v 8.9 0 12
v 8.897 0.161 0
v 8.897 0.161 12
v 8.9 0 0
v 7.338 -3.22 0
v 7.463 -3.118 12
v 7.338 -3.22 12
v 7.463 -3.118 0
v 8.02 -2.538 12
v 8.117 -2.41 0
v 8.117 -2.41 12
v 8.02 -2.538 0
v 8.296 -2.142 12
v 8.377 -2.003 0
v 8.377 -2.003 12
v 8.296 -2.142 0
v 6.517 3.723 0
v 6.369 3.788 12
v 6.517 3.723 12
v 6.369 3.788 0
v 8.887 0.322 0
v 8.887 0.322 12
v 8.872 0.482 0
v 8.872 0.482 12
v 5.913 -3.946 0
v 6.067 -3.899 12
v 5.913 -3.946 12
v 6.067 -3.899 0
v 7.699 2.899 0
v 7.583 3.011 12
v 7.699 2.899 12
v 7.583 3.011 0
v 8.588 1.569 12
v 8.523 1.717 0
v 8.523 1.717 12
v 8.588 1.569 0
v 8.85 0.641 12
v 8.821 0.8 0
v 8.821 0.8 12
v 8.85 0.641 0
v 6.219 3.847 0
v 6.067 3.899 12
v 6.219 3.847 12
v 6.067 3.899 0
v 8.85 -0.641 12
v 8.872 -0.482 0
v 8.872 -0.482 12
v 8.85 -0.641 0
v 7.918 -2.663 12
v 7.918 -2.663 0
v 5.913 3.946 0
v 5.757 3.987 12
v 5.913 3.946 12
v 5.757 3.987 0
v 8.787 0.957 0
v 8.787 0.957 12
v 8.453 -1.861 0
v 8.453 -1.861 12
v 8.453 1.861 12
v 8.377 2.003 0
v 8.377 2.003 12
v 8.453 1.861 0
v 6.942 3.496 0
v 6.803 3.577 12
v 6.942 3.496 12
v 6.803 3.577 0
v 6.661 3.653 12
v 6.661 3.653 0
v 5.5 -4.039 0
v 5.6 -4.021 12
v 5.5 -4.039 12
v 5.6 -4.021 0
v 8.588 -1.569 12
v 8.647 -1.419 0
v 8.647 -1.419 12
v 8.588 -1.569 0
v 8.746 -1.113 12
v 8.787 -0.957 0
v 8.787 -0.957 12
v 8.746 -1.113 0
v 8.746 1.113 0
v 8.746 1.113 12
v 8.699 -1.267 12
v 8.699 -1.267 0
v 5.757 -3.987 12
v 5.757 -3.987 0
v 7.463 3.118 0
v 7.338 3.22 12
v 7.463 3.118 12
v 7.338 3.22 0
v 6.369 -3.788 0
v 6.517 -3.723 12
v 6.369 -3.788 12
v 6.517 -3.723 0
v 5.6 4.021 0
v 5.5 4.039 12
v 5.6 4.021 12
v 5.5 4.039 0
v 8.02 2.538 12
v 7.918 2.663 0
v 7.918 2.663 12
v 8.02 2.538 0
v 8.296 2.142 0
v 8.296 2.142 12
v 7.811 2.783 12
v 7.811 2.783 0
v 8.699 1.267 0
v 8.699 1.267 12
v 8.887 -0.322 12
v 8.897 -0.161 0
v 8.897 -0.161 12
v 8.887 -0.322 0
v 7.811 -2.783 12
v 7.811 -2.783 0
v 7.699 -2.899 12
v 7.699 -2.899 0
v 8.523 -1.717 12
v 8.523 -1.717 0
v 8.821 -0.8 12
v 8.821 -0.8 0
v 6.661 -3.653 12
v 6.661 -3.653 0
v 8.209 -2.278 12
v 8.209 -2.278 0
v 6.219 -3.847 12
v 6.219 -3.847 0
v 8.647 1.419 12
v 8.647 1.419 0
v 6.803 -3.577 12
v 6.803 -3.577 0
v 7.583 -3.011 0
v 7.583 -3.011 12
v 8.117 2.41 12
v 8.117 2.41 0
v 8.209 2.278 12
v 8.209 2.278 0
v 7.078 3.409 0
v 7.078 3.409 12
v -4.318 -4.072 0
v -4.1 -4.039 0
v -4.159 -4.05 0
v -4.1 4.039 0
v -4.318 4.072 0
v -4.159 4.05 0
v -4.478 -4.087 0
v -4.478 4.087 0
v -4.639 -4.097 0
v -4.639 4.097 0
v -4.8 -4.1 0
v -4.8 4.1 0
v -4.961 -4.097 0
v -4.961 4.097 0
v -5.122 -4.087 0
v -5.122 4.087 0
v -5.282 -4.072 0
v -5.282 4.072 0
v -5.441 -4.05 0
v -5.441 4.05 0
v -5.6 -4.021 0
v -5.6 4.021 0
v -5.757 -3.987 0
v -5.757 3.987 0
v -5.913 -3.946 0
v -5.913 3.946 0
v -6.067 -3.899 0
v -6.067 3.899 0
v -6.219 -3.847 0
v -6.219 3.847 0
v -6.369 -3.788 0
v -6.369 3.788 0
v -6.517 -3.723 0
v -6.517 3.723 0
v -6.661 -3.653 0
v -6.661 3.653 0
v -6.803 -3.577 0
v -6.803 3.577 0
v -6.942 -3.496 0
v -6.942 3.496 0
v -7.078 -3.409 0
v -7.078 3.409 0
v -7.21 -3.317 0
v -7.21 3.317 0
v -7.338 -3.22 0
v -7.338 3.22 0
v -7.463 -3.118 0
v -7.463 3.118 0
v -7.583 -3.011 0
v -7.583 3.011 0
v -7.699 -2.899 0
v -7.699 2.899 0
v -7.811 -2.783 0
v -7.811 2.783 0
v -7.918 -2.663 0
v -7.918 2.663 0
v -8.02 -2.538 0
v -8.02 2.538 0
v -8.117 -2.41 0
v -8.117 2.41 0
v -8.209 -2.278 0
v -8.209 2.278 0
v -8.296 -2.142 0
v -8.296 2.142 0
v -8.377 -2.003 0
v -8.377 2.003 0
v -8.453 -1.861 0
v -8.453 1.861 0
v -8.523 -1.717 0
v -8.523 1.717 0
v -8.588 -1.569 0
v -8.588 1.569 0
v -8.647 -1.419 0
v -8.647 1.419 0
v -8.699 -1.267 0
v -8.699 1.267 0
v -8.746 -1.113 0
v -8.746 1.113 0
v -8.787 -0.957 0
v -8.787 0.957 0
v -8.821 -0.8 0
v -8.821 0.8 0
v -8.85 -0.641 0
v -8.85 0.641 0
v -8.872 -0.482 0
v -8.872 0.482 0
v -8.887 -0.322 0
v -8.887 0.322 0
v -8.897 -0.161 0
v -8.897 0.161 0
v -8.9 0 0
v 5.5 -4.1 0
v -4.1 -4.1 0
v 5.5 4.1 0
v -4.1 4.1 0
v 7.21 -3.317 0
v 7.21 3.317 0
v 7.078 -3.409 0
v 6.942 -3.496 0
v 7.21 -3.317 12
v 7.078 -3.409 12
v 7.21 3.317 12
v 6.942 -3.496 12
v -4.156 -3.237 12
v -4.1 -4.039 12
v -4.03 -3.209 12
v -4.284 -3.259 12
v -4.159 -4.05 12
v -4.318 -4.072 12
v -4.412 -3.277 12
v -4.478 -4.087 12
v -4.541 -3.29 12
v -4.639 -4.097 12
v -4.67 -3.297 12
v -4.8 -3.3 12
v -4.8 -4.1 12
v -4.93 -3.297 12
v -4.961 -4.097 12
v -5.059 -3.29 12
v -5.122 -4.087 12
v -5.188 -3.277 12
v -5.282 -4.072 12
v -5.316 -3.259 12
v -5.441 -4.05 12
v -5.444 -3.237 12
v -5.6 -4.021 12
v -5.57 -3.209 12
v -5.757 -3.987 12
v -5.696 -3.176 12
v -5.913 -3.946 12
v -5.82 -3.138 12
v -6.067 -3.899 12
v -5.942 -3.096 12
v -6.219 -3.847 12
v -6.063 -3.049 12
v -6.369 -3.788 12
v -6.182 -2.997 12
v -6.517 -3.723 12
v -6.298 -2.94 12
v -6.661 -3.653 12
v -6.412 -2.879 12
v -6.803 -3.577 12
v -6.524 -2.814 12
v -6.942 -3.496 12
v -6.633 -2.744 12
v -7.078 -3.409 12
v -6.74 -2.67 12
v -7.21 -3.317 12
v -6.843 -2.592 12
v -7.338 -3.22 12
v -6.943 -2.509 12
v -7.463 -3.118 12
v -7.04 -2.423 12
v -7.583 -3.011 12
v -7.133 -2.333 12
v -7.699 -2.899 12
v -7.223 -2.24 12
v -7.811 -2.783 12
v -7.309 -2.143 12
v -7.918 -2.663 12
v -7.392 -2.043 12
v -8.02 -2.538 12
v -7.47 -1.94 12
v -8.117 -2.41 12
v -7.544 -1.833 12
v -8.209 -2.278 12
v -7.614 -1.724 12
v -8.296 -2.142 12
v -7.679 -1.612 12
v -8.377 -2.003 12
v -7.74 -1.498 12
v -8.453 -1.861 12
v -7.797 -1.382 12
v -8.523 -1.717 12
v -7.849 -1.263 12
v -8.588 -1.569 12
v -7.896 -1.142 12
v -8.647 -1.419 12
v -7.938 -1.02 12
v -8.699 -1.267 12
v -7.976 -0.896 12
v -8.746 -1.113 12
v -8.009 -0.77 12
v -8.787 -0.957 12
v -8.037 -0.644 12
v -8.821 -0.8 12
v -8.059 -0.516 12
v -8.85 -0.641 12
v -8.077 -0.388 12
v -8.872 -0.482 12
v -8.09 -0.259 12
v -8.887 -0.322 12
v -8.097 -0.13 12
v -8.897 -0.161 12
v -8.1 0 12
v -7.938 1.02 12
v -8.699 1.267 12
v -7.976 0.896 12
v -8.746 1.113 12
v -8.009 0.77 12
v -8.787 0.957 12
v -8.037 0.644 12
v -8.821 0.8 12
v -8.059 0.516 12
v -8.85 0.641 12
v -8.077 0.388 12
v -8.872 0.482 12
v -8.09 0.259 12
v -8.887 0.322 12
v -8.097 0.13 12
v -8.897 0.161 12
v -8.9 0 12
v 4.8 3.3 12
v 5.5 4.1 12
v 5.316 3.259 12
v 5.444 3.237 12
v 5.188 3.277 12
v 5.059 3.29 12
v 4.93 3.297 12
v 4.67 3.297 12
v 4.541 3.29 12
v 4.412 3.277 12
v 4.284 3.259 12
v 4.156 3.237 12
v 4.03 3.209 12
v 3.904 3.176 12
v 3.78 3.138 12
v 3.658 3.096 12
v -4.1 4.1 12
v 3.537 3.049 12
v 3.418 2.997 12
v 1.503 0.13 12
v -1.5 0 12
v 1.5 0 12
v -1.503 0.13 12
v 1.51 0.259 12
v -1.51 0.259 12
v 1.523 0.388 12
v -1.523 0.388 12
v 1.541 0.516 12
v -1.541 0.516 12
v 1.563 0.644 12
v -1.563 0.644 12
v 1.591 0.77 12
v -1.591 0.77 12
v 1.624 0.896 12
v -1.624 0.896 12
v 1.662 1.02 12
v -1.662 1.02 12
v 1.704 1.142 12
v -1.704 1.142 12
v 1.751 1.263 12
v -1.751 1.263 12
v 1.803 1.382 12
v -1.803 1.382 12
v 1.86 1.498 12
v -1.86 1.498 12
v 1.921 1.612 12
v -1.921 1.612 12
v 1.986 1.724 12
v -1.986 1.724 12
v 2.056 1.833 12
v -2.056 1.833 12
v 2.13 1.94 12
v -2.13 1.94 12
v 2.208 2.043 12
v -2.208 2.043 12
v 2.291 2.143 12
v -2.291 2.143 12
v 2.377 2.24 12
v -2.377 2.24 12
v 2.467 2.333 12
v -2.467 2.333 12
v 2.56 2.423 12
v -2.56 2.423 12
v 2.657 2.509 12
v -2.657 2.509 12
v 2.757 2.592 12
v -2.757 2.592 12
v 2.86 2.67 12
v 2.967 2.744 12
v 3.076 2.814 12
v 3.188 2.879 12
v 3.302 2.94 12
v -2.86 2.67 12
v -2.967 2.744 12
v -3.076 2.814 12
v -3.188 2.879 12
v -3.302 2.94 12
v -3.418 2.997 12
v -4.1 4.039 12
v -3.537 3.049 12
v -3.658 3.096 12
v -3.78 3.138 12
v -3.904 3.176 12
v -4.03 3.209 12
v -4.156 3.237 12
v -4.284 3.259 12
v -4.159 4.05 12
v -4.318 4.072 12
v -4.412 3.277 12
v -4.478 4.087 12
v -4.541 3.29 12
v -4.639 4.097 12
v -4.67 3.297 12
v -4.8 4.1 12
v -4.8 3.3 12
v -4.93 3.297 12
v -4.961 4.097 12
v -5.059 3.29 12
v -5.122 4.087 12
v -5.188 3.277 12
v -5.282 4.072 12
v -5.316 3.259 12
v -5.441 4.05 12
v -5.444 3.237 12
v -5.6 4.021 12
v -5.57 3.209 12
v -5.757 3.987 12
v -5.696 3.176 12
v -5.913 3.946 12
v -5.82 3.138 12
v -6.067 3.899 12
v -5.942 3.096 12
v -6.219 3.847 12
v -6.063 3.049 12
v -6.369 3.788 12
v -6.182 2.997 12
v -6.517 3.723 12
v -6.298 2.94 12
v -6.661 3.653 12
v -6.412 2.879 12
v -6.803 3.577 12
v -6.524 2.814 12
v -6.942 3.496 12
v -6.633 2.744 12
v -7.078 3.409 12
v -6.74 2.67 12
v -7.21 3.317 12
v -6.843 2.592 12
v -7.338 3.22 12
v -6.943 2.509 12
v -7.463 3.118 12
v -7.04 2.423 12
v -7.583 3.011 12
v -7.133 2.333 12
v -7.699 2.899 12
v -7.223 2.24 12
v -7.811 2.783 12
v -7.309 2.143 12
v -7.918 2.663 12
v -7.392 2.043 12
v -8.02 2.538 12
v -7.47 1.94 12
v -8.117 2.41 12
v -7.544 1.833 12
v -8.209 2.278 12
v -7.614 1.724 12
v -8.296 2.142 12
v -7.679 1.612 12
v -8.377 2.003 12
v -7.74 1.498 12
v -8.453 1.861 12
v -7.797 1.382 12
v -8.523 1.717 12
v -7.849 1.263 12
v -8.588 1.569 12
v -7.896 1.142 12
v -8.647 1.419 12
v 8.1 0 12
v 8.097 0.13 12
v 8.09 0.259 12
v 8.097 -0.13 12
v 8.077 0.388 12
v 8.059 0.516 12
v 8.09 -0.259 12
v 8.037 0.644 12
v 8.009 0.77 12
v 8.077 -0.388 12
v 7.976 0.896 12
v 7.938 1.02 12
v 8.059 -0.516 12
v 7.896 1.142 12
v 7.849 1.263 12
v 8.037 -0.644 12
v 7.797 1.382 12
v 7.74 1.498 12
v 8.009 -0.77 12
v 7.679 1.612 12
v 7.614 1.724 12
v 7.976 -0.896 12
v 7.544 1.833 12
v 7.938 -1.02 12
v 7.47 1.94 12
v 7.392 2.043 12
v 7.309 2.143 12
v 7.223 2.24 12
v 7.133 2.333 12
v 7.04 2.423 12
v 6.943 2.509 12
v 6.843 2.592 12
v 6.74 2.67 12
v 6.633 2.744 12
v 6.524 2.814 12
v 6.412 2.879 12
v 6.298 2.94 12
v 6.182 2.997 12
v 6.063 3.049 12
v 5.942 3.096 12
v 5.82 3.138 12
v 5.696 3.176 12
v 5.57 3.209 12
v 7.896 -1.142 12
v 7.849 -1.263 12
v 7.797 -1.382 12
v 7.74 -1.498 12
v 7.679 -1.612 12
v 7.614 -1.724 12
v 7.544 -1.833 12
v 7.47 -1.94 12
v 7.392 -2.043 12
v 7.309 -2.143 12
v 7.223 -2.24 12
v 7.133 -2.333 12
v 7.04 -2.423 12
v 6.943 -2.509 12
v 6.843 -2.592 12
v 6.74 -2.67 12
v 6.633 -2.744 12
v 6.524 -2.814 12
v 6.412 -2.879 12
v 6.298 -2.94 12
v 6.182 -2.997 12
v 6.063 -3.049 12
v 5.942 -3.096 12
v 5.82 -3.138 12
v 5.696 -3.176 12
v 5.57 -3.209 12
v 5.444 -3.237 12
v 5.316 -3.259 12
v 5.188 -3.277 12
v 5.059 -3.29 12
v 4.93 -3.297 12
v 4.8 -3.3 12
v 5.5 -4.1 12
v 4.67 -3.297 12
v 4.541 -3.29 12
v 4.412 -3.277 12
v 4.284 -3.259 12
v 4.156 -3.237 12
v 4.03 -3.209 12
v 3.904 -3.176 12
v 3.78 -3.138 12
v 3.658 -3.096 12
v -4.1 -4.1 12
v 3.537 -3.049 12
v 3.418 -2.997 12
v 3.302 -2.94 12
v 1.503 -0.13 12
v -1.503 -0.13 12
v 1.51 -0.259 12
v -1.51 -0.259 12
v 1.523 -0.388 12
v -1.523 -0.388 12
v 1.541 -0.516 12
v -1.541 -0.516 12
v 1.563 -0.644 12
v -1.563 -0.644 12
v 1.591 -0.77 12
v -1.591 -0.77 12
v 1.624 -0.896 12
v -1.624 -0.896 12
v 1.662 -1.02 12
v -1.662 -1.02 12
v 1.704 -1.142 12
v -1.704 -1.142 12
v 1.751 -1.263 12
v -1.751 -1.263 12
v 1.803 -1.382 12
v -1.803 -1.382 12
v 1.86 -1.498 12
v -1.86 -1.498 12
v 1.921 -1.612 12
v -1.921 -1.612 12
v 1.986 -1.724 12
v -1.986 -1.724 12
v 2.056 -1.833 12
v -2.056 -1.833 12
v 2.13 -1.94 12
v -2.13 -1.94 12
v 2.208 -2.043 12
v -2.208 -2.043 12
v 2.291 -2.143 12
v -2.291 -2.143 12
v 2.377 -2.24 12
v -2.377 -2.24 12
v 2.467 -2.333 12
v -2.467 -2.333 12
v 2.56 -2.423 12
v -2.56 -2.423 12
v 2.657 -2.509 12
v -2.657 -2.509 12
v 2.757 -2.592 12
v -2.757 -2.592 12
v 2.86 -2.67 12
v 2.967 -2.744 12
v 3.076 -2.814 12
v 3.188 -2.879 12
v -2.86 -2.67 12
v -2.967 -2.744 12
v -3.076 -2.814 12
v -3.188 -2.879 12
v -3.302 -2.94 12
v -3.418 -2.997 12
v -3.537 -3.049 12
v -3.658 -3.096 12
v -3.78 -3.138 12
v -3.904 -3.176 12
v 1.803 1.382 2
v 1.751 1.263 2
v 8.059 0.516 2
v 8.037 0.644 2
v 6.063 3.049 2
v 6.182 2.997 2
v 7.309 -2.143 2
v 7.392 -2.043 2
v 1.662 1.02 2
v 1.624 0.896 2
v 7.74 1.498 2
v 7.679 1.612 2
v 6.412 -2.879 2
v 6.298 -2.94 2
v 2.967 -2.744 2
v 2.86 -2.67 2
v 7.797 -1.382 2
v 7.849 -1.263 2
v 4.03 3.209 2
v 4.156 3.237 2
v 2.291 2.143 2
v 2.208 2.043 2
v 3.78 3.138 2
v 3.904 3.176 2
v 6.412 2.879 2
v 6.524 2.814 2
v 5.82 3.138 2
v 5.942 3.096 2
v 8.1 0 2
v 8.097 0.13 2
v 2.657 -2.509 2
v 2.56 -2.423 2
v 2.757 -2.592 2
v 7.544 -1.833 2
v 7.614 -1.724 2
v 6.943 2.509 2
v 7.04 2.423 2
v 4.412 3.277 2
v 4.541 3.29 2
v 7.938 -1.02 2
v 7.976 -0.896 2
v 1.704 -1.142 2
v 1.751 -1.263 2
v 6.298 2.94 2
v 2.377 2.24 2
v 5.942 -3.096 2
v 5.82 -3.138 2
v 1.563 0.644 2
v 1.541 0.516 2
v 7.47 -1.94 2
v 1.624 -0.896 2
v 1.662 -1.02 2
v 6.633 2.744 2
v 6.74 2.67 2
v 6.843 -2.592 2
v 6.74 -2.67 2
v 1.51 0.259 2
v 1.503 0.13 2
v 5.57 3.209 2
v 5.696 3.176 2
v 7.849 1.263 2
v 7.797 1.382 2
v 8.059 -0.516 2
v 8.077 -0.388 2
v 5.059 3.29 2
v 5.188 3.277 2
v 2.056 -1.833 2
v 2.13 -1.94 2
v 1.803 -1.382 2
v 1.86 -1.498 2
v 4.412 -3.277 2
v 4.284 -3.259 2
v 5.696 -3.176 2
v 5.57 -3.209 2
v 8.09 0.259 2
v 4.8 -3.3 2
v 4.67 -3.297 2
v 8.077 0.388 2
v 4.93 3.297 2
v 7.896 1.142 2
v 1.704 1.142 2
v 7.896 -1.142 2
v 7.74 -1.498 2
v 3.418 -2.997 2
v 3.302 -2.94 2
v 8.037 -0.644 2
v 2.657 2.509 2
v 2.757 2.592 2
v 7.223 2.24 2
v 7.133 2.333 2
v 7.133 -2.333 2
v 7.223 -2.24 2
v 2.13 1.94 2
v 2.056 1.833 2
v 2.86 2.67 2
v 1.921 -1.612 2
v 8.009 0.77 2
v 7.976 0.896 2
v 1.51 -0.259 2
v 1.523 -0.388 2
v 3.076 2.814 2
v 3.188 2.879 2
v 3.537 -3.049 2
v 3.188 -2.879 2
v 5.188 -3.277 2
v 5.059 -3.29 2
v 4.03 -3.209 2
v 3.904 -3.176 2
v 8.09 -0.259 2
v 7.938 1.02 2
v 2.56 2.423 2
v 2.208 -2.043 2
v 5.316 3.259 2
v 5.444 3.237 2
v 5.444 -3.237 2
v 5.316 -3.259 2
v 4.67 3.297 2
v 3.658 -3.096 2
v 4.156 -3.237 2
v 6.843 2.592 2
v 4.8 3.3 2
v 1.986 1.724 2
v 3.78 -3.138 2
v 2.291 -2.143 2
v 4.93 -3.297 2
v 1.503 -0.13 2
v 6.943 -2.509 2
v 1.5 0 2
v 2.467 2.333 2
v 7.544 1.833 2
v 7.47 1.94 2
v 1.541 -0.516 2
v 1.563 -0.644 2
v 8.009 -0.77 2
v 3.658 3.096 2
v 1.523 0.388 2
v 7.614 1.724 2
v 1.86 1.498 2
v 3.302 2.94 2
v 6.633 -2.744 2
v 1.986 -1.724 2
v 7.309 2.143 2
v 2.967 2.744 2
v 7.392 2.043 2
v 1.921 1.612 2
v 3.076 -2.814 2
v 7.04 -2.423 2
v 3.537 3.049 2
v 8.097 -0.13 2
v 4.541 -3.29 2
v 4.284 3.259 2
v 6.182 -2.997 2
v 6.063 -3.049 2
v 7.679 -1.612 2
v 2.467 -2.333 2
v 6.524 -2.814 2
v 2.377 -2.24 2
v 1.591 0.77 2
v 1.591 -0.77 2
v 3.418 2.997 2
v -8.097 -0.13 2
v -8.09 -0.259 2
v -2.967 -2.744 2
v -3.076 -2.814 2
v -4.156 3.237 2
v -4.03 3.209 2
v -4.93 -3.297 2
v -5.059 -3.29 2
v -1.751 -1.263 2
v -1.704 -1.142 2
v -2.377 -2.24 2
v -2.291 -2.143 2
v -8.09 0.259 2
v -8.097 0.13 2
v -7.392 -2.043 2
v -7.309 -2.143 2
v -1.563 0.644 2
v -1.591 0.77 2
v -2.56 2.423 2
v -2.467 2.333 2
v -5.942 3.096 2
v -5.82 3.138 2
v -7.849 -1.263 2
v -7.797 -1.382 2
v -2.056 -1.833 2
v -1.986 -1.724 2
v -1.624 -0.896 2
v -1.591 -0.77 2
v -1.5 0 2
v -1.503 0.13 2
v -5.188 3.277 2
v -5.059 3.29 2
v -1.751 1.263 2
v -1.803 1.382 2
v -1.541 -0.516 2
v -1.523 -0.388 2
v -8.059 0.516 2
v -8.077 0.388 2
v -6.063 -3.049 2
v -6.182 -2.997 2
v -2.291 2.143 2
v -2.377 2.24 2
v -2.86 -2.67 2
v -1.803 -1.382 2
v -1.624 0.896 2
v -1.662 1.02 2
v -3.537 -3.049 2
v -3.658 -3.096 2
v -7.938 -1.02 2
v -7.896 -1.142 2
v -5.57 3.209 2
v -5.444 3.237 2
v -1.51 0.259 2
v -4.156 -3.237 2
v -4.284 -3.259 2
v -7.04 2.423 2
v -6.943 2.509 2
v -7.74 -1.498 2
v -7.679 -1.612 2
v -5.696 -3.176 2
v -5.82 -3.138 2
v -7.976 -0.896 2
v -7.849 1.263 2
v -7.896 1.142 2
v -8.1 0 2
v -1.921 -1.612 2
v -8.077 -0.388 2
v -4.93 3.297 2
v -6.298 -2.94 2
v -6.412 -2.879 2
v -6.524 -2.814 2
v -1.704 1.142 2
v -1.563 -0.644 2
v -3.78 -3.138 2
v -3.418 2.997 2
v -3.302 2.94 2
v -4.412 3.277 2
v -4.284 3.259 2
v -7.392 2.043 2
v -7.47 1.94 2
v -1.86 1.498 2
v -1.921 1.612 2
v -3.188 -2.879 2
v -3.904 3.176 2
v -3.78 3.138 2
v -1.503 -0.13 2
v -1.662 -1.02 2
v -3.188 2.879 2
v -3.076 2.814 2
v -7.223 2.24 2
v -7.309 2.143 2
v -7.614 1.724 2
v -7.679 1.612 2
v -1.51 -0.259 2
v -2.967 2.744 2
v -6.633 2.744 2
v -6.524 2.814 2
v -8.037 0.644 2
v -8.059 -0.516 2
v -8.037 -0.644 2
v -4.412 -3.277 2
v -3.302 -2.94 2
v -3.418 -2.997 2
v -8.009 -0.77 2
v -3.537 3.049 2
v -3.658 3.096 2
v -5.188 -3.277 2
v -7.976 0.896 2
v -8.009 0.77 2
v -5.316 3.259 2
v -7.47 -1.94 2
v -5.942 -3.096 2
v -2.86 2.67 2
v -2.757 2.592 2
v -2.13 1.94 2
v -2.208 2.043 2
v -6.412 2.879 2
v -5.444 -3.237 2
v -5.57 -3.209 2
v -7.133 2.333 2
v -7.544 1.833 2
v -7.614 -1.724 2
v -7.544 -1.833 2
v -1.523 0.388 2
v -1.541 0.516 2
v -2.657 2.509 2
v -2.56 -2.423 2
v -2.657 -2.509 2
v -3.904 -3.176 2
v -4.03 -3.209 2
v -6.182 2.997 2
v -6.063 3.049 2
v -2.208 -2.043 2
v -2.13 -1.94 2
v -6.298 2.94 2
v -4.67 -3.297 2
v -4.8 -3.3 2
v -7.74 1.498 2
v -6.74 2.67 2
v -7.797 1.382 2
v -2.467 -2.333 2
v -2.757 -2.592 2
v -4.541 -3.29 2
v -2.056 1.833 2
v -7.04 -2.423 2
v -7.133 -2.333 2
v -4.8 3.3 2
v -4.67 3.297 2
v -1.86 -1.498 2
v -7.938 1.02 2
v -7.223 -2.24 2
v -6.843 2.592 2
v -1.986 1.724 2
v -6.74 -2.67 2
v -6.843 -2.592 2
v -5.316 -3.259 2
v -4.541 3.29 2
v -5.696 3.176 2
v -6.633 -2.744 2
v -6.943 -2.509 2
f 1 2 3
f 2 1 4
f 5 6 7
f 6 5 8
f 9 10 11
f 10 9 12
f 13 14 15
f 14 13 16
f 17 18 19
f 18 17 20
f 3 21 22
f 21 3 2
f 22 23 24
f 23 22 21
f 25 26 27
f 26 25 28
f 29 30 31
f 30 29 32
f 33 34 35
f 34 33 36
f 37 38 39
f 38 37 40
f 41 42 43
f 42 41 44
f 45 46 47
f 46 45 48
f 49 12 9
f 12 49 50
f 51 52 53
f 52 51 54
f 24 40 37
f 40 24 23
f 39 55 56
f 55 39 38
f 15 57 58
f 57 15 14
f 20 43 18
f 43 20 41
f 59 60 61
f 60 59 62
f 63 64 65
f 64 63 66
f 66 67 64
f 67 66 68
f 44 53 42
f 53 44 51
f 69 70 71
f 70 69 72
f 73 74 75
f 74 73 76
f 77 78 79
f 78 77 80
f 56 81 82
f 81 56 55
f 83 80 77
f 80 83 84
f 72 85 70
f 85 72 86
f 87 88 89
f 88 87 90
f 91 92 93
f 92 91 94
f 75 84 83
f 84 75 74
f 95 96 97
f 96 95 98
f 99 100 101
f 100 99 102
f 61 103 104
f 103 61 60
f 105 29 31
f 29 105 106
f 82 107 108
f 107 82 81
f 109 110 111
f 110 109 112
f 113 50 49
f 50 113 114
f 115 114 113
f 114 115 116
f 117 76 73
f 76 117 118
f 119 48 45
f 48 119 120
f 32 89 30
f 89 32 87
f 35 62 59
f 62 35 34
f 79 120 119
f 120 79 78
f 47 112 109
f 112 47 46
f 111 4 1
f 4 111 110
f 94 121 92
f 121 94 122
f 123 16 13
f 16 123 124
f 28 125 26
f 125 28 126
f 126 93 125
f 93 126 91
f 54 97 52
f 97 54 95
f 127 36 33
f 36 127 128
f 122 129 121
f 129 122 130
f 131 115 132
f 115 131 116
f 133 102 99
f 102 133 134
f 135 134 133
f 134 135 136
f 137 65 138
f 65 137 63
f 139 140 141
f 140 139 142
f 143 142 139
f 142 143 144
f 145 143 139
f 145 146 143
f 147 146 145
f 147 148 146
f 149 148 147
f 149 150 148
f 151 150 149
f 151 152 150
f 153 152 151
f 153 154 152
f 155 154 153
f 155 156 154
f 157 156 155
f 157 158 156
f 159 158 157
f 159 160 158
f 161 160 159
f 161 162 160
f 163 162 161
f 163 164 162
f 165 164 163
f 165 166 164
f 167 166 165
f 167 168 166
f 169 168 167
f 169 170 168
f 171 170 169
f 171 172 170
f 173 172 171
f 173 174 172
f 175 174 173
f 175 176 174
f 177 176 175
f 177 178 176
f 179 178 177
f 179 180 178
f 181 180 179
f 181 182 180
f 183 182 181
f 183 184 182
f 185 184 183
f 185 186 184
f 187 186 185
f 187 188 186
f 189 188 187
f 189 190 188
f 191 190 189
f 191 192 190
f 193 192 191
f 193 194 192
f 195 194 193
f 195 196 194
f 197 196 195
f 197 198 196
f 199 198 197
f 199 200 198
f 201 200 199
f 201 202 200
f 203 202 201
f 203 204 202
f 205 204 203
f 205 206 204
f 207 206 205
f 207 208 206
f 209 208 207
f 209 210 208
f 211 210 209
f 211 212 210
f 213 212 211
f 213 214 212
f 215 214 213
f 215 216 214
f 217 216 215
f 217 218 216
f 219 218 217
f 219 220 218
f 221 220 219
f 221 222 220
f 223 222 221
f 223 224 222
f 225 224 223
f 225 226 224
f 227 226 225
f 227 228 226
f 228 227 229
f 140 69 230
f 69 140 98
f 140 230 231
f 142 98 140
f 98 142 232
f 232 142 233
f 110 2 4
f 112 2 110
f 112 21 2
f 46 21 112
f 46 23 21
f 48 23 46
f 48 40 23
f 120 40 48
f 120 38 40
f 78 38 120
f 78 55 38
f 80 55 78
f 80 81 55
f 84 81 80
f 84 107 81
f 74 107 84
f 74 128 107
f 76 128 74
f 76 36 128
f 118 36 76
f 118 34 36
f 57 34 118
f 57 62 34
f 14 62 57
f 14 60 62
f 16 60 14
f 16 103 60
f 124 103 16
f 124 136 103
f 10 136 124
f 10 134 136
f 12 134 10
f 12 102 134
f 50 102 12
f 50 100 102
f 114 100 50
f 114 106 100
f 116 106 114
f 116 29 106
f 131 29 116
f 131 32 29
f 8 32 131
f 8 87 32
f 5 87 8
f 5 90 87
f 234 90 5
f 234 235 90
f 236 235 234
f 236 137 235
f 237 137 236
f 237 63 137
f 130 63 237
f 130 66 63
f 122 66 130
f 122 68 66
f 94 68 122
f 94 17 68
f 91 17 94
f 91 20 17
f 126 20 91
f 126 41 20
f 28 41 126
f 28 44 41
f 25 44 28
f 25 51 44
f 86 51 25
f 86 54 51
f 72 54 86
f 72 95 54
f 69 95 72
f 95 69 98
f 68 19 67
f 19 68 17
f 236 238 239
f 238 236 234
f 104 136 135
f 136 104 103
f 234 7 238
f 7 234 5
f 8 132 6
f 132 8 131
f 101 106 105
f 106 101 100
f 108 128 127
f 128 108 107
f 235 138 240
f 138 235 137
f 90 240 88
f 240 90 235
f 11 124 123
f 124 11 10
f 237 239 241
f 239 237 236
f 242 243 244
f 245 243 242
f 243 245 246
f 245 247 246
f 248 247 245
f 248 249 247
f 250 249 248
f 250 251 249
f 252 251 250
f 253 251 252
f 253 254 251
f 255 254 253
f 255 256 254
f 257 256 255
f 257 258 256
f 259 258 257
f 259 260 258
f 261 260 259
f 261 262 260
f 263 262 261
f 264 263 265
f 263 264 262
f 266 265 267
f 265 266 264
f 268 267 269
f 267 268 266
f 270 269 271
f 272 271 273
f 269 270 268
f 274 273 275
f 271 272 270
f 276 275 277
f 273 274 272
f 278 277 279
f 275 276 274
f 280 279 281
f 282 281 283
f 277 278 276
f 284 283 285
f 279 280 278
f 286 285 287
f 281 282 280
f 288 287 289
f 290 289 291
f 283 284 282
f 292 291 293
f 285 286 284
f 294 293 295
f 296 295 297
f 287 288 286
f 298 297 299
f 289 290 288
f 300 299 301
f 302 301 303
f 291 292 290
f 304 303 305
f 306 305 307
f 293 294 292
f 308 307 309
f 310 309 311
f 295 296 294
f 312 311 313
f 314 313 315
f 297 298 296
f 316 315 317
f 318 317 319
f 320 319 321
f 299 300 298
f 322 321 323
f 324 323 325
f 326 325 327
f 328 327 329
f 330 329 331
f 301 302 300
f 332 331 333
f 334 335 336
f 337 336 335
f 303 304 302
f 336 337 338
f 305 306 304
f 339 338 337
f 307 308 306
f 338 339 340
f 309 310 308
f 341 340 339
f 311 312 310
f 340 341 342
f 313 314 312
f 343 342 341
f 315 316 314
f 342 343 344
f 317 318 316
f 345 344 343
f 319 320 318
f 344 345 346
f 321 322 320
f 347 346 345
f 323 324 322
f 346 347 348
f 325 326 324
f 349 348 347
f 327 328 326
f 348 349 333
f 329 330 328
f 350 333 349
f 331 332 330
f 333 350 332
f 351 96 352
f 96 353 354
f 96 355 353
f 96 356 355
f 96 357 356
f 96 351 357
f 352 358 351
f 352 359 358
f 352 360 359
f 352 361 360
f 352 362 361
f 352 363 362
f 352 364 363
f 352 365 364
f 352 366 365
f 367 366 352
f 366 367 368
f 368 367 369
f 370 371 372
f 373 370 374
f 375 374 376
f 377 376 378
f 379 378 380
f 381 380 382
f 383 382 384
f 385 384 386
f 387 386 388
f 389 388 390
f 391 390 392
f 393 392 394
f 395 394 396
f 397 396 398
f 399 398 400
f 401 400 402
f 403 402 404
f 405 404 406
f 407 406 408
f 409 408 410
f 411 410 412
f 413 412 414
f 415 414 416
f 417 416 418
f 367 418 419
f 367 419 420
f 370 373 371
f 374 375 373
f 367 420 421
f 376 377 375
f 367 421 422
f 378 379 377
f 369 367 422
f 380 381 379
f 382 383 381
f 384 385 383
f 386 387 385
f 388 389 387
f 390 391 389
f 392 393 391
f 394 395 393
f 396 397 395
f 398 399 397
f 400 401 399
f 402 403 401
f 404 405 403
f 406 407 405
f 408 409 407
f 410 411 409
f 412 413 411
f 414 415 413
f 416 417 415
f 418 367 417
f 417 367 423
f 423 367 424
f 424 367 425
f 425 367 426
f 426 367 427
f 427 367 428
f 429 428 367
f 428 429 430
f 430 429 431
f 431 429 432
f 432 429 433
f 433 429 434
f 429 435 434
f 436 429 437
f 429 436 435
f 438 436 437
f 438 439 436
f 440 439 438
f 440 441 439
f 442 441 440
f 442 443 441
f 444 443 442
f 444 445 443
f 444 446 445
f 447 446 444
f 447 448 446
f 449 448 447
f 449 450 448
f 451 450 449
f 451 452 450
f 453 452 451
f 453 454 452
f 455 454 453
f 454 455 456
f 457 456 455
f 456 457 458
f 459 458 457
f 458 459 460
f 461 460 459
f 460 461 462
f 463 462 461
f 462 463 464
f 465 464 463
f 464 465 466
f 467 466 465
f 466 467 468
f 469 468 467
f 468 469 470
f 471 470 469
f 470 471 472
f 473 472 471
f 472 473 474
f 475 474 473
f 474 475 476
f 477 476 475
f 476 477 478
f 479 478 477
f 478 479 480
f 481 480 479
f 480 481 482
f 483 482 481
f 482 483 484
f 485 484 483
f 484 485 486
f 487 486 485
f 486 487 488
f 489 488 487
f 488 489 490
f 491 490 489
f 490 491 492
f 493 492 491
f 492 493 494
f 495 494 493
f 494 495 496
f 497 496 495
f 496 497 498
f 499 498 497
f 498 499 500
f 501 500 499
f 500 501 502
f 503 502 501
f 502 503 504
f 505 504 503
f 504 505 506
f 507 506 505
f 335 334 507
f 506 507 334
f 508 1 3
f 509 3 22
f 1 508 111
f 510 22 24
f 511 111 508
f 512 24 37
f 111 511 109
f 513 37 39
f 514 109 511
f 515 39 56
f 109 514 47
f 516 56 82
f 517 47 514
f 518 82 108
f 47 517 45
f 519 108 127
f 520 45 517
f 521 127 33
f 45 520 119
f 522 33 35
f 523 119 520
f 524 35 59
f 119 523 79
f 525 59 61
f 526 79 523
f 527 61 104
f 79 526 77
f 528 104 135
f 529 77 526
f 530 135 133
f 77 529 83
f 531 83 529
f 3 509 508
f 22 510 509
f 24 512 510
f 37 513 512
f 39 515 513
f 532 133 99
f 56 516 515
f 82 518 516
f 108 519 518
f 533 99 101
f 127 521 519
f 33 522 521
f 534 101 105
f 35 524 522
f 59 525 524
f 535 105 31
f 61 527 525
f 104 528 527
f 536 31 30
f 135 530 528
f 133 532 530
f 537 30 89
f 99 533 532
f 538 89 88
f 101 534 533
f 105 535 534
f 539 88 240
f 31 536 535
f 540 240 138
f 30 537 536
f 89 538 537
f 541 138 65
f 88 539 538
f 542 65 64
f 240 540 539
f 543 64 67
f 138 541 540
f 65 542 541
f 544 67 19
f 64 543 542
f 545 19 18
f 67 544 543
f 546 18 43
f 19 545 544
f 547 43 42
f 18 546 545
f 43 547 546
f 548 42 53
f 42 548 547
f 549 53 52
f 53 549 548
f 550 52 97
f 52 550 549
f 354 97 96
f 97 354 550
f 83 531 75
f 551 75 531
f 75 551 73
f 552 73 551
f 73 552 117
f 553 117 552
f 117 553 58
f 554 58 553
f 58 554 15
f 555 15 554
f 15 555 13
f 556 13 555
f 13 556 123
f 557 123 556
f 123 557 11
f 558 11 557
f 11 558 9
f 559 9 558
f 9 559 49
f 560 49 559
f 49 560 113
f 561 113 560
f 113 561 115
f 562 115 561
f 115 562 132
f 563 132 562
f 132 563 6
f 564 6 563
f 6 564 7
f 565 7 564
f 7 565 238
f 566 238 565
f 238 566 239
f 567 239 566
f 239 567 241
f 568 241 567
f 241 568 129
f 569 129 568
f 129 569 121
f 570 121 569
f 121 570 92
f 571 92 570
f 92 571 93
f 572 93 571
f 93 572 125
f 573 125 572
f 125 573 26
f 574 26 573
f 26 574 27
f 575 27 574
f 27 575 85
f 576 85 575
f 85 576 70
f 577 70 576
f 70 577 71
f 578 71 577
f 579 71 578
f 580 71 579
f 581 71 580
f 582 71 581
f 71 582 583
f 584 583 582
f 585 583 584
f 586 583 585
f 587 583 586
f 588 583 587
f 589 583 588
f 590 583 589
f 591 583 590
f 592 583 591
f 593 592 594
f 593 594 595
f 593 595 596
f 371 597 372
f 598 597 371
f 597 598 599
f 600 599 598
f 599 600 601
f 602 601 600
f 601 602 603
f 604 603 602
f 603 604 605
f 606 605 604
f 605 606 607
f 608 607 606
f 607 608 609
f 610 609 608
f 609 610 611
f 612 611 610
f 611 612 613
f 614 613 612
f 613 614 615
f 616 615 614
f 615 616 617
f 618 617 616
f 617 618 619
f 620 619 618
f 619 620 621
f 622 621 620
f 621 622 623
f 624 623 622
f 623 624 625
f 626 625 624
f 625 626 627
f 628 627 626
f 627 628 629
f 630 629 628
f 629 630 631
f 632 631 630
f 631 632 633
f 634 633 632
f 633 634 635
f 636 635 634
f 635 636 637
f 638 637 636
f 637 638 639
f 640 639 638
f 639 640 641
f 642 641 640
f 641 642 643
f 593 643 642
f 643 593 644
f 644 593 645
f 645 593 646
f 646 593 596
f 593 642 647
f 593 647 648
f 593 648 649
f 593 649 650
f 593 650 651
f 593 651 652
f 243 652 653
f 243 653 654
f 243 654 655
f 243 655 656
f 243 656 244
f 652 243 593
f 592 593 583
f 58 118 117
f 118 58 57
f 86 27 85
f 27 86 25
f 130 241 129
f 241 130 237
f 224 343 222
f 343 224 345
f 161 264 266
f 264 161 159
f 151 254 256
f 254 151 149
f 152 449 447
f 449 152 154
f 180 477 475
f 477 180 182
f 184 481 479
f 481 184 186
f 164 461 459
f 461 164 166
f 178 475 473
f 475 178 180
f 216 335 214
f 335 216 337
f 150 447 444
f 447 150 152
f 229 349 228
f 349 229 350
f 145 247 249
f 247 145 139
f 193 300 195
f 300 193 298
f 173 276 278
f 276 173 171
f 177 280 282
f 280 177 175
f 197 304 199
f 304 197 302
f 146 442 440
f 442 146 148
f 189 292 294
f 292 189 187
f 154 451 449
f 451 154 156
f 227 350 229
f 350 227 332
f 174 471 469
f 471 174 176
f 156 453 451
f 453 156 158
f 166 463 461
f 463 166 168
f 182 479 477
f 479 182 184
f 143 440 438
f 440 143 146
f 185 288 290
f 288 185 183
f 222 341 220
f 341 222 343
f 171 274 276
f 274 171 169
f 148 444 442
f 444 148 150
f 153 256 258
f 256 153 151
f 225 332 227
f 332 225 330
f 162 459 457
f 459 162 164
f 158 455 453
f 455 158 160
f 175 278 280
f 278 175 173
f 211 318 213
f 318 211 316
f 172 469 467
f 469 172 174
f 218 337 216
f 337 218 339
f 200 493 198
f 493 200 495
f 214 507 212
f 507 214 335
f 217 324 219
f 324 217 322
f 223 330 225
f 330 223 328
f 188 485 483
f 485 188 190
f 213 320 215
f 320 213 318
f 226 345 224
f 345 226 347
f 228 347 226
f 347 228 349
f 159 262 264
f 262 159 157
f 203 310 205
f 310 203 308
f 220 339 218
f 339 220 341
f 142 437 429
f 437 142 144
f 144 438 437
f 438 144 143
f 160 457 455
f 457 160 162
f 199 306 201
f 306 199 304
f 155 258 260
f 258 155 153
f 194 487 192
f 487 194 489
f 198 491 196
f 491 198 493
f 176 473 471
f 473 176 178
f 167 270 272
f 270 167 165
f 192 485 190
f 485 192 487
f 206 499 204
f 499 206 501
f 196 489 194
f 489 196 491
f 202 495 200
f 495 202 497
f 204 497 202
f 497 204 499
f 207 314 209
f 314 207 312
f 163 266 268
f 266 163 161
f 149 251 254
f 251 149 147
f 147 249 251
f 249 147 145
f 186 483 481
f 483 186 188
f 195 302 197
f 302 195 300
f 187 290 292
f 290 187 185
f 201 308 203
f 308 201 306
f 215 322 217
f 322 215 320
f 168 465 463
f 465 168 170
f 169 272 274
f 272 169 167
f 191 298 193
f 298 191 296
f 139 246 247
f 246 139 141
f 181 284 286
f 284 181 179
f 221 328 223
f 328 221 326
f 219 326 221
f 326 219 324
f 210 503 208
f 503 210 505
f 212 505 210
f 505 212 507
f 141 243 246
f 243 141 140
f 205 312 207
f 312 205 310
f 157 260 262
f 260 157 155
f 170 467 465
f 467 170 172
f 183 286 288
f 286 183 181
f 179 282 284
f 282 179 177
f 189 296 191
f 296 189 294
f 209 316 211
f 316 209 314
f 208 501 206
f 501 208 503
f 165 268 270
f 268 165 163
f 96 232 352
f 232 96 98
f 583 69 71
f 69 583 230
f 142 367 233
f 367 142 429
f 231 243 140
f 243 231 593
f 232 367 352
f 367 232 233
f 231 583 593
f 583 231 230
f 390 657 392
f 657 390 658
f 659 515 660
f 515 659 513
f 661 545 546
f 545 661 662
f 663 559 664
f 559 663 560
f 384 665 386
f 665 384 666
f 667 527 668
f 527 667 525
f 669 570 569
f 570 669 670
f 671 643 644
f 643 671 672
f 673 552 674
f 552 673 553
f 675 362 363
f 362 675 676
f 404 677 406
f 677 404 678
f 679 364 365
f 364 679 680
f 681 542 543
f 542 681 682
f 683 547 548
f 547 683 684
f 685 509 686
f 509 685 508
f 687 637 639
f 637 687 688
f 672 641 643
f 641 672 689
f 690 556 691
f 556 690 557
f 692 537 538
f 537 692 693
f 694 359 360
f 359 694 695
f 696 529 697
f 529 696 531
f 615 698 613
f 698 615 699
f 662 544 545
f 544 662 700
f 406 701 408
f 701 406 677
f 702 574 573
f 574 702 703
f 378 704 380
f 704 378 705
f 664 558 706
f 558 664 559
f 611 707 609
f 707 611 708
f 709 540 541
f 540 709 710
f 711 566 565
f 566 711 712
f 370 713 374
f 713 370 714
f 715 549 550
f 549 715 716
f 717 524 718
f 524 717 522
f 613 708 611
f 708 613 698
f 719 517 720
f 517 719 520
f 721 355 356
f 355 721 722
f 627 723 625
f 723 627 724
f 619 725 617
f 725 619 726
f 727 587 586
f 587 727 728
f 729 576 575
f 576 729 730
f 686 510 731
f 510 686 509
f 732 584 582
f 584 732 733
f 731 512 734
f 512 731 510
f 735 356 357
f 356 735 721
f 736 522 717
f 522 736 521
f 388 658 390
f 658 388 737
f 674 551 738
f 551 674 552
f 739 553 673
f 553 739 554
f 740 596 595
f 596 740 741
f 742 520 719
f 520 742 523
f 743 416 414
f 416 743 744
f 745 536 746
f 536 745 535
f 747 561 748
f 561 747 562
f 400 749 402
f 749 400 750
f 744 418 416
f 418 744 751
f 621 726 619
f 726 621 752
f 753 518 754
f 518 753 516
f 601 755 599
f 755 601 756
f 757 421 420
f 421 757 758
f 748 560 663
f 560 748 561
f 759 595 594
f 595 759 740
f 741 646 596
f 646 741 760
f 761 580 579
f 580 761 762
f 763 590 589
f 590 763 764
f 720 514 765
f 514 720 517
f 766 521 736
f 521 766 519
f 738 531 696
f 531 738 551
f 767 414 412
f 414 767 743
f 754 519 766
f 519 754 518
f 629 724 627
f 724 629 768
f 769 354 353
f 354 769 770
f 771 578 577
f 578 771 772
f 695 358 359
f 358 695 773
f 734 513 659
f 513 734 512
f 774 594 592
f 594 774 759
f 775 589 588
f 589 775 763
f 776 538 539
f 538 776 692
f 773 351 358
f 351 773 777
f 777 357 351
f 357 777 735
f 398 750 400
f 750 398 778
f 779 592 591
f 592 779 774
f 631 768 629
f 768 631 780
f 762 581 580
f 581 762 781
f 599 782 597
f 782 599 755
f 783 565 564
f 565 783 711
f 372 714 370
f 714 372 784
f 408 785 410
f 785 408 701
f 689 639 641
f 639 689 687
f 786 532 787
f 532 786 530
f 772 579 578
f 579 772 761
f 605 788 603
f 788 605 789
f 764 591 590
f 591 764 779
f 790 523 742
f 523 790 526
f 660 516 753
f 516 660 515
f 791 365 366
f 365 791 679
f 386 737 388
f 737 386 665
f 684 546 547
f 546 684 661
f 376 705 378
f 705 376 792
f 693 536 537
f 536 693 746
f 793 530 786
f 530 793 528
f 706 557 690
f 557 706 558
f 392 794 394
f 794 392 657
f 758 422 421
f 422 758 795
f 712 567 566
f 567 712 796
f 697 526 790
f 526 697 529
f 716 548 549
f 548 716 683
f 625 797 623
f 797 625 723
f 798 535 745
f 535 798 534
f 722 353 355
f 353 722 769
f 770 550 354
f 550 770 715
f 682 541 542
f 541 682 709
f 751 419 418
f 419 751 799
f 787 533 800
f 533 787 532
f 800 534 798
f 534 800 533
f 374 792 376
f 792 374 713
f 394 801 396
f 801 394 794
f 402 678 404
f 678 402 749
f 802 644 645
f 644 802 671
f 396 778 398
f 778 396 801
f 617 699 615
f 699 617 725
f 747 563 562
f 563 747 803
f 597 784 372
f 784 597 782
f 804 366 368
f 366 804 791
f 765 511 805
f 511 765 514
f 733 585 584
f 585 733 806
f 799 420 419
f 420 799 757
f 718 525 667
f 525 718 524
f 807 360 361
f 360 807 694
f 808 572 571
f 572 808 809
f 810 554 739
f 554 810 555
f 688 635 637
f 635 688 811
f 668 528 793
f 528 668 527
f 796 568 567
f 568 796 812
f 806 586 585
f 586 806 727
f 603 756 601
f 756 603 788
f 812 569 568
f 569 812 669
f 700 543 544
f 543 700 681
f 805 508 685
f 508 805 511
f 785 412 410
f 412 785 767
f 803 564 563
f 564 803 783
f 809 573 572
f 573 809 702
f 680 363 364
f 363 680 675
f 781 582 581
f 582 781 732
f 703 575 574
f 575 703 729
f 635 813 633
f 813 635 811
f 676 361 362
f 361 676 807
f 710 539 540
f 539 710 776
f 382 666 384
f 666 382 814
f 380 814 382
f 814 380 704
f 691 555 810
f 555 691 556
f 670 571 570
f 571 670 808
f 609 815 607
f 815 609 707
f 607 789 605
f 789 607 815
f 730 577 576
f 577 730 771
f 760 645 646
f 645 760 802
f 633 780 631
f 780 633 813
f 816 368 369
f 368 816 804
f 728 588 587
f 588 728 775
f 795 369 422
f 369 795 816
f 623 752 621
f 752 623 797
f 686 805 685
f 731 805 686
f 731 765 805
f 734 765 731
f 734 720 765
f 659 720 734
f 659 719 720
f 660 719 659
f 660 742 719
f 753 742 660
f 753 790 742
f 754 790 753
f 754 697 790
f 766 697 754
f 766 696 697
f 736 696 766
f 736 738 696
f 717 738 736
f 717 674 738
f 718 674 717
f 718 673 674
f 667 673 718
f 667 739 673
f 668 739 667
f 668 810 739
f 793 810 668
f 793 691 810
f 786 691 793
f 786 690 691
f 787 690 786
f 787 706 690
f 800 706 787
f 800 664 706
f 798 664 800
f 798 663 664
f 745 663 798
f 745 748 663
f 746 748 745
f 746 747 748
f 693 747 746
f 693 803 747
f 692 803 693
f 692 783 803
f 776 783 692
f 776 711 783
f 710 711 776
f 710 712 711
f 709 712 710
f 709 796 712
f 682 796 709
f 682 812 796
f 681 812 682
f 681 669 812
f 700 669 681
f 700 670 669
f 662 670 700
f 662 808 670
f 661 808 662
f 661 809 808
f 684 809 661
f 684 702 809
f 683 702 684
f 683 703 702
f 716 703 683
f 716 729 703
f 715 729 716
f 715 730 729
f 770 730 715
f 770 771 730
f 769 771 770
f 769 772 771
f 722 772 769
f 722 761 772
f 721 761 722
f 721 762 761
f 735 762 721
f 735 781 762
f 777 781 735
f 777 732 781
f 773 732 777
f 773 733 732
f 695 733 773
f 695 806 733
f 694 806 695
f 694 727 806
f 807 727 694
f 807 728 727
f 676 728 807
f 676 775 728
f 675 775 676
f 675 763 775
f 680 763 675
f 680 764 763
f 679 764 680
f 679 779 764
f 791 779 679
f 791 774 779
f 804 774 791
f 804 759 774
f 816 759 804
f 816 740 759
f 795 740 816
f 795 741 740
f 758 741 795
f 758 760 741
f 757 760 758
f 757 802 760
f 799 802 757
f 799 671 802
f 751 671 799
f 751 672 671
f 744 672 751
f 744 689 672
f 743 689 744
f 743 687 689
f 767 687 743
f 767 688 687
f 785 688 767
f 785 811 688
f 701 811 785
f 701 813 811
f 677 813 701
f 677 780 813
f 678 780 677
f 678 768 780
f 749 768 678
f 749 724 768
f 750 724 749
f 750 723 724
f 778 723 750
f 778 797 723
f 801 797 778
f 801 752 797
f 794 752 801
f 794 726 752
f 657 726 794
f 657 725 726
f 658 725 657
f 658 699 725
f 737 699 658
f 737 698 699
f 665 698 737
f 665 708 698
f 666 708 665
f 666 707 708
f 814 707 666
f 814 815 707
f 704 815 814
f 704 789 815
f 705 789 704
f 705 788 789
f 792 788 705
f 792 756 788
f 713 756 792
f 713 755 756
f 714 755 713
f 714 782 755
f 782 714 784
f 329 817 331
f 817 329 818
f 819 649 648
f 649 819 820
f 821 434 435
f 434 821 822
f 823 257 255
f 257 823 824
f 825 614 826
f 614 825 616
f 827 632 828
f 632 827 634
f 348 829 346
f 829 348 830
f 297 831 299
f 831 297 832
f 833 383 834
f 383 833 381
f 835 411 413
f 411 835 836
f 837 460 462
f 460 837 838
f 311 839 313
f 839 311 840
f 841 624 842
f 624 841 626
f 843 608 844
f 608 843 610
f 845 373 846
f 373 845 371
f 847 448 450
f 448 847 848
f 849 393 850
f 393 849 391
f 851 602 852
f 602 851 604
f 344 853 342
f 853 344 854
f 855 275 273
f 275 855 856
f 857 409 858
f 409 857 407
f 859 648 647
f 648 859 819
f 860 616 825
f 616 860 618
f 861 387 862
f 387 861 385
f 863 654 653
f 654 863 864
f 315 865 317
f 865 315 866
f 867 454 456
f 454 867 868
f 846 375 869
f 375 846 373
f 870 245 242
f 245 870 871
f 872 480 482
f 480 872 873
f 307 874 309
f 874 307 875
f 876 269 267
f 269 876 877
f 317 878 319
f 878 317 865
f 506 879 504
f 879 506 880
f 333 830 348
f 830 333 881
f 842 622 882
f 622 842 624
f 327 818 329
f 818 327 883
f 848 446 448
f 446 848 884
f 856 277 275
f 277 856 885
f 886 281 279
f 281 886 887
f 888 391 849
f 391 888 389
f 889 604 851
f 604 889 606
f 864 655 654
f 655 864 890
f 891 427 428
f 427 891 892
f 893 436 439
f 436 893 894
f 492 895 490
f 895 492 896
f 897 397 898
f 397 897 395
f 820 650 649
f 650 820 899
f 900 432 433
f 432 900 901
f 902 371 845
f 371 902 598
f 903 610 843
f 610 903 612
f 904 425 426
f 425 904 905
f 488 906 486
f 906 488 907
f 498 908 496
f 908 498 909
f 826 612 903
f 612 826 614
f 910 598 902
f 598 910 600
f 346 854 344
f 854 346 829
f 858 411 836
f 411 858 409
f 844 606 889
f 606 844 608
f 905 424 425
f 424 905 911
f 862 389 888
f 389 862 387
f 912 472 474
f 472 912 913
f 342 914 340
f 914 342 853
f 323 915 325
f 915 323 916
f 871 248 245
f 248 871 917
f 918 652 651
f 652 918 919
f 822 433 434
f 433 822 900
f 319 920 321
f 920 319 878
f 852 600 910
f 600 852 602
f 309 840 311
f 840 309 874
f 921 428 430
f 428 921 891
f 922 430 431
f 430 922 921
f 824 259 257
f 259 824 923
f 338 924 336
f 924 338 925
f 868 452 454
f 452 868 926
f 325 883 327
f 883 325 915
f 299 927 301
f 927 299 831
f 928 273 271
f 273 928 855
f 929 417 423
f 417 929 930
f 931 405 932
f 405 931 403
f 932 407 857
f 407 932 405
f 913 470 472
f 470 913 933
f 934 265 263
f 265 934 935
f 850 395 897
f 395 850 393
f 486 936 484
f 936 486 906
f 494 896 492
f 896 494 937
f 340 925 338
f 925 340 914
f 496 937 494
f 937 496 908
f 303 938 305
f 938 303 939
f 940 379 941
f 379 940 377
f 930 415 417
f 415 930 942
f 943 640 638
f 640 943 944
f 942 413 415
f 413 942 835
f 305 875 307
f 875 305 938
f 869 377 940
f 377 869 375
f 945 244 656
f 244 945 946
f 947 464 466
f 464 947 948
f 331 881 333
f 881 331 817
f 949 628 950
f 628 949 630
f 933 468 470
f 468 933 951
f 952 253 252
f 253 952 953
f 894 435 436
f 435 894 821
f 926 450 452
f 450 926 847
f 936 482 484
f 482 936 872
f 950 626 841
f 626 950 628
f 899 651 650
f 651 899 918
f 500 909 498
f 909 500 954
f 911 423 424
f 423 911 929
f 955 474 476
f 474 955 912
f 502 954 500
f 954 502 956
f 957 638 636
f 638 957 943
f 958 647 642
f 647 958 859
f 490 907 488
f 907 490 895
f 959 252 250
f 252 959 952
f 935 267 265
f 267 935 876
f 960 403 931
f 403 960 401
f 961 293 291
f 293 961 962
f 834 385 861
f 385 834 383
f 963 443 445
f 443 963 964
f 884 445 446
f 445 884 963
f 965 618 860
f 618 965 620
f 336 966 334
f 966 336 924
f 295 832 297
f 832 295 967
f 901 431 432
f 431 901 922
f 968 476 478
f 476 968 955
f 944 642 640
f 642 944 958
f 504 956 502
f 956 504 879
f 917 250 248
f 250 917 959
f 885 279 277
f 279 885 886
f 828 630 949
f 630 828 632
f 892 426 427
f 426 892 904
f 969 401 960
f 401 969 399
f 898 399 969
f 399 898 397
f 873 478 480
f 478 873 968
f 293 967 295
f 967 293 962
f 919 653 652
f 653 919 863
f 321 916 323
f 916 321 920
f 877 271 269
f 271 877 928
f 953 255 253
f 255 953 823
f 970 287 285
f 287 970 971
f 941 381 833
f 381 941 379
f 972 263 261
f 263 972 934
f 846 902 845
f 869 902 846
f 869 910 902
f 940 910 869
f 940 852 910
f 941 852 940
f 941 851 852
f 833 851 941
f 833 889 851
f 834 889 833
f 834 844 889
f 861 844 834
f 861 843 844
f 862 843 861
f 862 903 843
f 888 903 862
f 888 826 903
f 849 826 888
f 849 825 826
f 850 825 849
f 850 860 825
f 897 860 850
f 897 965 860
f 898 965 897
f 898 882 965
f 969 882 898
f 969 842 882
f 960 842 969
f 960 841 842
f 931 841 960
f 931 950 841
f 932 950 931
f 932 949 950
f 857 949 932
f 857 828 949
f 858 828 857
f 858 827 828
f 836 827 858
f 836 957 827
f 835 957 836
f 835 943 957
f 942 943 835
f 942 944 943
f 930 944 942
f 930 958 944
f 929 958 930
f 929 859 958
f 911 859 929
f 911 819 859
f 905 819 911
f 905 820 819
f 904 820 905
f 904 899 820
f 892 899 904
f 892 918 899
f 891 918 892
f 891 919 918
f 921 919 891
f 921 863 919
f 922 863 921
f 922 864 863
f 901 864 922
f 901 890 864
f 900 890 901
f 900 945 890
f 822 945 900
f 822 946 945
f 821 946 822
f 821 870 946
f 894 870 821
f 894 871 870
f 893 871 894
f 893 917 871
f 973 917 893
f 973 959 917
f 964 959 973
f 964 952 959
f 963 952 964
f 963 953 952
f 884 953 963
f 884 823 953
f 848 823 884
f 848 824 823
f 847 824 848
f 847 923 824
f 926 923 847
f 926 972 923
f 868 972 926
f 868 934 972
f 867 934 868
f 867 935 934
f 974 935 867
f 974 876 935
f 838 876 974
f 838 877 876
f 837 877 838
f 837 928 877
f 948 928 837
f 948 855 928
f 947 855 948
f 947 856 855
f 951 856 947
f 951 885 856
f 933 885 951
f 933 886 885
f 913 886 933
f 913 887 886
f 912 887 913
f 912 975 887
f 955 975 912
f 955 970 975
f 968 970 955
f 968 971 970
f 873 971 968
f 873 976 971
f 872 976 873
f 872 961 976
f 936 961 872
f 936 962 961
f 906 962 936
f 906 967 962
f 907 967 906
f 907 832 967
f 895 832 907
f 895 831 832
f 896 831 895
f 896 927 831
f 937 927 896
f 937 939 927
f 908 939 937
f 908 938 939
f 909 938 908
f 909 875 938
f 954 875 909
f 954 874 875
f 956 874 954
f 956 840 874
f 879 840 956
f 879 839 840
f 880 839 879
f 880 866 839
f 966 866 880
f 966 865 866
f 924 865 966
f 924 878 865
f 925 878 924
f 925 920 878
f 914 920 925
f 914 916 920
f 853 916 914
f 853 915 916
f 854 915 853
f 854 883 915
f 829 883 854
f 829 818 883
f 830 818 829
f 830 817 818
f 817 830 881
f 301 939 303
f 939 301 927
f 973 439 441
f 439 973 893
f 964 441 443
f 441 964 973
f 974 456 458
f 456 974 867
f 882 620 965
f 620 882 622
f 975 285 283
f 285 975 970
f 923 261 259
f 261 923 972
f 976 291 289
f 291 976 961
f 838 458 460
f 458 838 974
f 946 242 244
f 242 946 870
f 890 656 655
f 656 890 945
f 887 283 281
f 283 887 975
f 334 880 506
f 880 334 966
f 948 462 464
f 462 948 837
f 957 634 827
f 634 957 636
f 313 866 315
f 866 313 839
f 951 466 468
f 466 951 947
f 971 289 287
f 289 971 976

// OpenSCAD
// Electrode Top Stop
// Racetrack-shaped cover that keeps the two electrodes parallel and seated
// to a consistent depth. Only the top is open, so the bottom face stops each
// electrode at the same height while also sitting flat on the print bed.
// Modified from Vial Cap.scad by Codex, then hand fixed.

$fn = 160; // smooth cylinders for a better fit

// -----------------------------
// Key parameters
// -----------------------------
electrode_od = 6.0;        // mm, outer diameter of electrode
electrode_tol = 0.6;       // mm, print clearance on each electrode hole
electrode_cutout = 0;      // mm, additional clearance used on the cap
electrode_offset = 4.8;    // mm, distance from origin to each electrode center

stop_height = 12;           // mm, overall height of the figure-eight stop
stop_cap_thickness = 2;    // mm kept solid on top to create the stop surface
shell_wall = 0.8;          // mm extra wall around each electrode sleeve

// Derived dimensions
electrode_port_od = electrode_od + electrode_tol + electrode_cutout;
outer_shell_od = electrode_port_od + 2 * shell_wall;
stop_hole_depth = stop_height - stop_cap_thickness;
assert(stop_cap_thickness < stop_height, "stop_cap_thickness must be less than stop_height");

// -----------------------------
// Helper modules
// -----------------------------
module electrode_shell(height) {
  union() {
    // Cylindrical sleeves around each electrode port
    for (offset = [-electrode_offset, electrode_offset])
      translate([-offset, 0, 0])
        cylinder(d = outer_shell_od, h = height, center = false);

    // Rectangular bridge that closes the sleeves into a racetrack profile
    translate([- outer_shell_od / 2, -outer_shell_od / 2, 0])
      cube([2 * electrode_offset, outer_shell_od, height], center = false);
  }
}

// -----------------------------
// Model
// -----------------------------
difference() {
  electrode_shell(stop_height);

  // Openings for the electrodes from the top only
  for (offset = [-electrode_offset, electrode_offset])
    translate([-offset, 0, stop_cap_thickness])
      cylinder(d = electrode_port_od, h = stop_hole_depth, center = false);
}
